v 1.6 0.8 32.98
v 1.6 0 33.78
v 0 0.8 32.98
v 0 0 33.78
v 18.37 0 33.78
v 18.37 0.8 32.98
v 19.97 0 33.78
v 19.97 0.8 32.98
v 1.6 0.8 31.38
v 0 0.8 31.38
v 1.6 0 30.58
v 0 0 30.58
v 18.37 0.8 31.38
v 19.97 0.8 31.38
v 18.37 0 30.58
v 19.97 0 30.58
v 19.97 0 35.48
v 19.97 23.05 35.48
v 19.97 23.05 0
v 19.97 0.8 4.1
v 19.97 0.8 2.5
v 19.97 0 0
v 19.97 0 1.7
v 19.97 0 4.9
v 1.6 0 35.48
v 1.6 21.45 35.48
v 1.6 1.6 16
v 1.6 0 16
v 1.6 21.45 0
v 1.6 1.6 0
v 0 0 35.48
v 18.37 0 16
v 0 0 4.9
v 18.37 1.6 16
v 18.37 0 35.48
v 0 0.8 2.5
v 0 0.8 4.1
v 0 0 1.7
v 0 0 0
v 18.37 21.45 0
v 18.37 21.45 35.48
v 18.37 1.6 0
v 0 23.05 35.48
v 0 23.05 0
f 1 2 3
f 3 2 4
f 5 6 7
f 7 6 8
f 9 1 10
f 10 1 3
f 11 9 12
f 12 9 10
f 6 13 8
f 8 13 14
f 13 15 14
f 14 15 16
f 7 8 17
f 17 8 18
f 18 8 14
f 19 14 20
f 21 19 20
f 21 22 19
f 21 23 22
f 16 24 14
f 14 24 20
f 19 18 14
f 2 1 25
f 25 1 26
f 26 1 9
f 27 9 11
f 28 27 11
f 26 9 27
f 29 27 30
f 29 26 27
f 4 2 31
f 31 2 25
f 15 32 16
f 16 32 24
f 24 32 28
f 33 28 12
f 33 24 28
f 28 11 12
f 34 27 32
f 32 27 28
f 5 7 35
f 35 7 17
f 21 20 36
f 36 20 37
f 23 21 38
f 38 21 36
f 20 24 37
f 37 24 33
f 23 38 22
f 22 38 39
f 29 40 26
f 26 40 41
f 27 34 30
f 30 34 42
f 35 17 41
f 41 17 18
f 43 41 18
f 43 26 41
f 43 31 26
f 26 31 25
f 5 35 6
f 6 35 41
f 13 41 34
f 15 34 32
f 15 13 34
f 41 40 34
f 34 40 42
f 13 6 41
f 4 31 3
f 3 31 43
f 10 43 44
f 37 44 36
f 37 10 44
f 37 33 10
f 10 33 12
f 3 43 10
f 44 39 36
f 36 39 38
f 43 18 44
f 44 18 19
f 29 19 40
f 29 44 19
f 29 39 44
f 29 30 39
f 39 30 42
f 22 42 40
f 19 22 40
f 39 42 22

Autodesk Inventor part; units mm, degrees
ref_plane "YZ Plane" through (0, 0, 0) normal (1, 0, 0) x (0, 1, 0)
ref_plane "XZ Plane" through (0, 0, 0) normal (0, 1, 0) x (-1, 0, 0)
ref_plane "XY Plane" through (0, 0, 0) normal (0, 0, 1) x (1, 0, 0)
sketch "Sketch1" plane through (0, 0, 0) normal (0, 0, 1) x (1, 0, 0)
  line L0 (0, 0) -> (1.6, 0)
  line L1 (1.6, 0) -> (1.6, 23.05)
  line L2 (1.6, 23.05) -> (0, 23.05)
  line L3 (0, 23.05) -> (0, 0)
  line L4 (0, 0) -> (19.97, 0)
  line L5 (19.97, 0) -> (19.97, 1.6)
  line L6 (19.97, 1.6) -> (0, 1.6)
  line L7 (0, 1.6) -> (0, 0)
  line L8 (0, 23.05) -> (19.97, 23.05)
  line L9 (19.97, 23.05) -> (19.97, 21.45)
  line L10 (19.97, 21.45) -> (0, 21.45)
  line L11 (0, 21.45) -> (0, 23.05)
  line L12 (19.97, 0) -> (18.37, 0)
  line L13 (18.37, 0) -> (18.37, 23.05)
  line L14 (18.37, 23.05) -> (19.97, 23.05)
  line L15 (19.97, 23.05) -> (19.97, 0)
  dimension "d0" = 1.6
  dimension "d1" = 1.6
  dimension "d2" = 1.6
  dimension "d3" = 1.6
  dimension "d4" = 19.85
  dimension "d5" = 16.77
extrude "Extrusion1" add sketch "Sketch1" along normal blind 35.48 contours L3 L6 L1 L0 | L1 L6 L13 L4 | L3 L10 L1 L6 | L13 L6 L5 L4 | L3 L2 L1 L10 | L1 L8 L13 L10 | L13 L10 L15 L6 | L13 L8 L9 L10
sketch "Sketch2" plane through (0, 0, 35.48) normal (0, 0, 1) x (1, 0, 0)
  line L0 (18.37, 21.45) -> (18.37, 1.6) projected
  line L1 (18.37, 1.6) -> (1.6, 1.6) projected
  line L2 (1.6, 1.6) -> (1.6, 21.45) projected
  line L3 (1.6, 21.45) -> (18.37, 21.45) projected
  line L4 (19.97, 23.05) -> (0, 23.05) projected
  line L5 (0, 23.05) -> (0, 0) projected
  line L6 (0, 0) -> (19.97, 0) projected
  line L7 (19.97, 0) -> (19.97, 23.05) projected
  line L8 (19.97, 0) -> (19.97, 23.05) projected
  line L9 (0, 0) -> (19.97, 0)
  line L10 (19.97, 0) -> (19.97, 1.6)
  line L11 (19.97, 1.6) -> (0, 1.6)
  line L12 (0, 1.6) -> (0, 0)
  line L13 (18.37, 1.6) -> (18.37, 0)
  line L14 (0, 0) -> (19.97, 0) projected
  line L15 (1.6, 1.6) -> (1.6, 0)
  line L16 (1.6, 1.6) -> (18.37, 1.6)
  line L17 (18.37, 1.6) -> (18.37, 0)
  line L18 (18.37, 0) -> (1.6, 0)
  line L19 (1.6, 0) -> (1.6, 1.6)
ref_plane "Work Plane1" through (0, 0, 16) normal (0, 0, -1) x (-1, 0, 0)
sketch "Sketch3" plane through (0, 0, 0) normal (-1, 0, 0) x (0, 0, 1)
  line L0 (0, 0) -> (35.48, 0) projected
  line L1 (1.7, 0) -> (2.5, 0.8)
  line L2 (1.7, 0) -> (2.8314, 0) construction
  line L3 (2.5, 0.8) -> (4.1, 0.8)
  line L4 (4.1, 0.8) -> (4.9, 0)
  line L5 (0, 23.05) -> (0, 0) projected
  point P0 (16, 0)
  dimension "d11" = 45
  dimension "d12" = 1.6
  dimension "d13" = 0.8
  dimension "d14" = 45
  dimension "d15" = 2.5
extrude "Extrusion3" cut sketch "Sketch3" against normal up to next
extrude "Extrusion4" cut sketch "Sketch2" against normal up to surface (19.48 mm away) contours L13 L6 L15 L1
ref_plane "Midway" through (0, 0, 17.74) normal (0, 0, -1) x (-1, 0, 0)
mirror "Mirror1" about plane through (0, 0, 17.74) normal (0, 0, -1) of "Extrusion3"
properties part number "CarEngineHousing"
